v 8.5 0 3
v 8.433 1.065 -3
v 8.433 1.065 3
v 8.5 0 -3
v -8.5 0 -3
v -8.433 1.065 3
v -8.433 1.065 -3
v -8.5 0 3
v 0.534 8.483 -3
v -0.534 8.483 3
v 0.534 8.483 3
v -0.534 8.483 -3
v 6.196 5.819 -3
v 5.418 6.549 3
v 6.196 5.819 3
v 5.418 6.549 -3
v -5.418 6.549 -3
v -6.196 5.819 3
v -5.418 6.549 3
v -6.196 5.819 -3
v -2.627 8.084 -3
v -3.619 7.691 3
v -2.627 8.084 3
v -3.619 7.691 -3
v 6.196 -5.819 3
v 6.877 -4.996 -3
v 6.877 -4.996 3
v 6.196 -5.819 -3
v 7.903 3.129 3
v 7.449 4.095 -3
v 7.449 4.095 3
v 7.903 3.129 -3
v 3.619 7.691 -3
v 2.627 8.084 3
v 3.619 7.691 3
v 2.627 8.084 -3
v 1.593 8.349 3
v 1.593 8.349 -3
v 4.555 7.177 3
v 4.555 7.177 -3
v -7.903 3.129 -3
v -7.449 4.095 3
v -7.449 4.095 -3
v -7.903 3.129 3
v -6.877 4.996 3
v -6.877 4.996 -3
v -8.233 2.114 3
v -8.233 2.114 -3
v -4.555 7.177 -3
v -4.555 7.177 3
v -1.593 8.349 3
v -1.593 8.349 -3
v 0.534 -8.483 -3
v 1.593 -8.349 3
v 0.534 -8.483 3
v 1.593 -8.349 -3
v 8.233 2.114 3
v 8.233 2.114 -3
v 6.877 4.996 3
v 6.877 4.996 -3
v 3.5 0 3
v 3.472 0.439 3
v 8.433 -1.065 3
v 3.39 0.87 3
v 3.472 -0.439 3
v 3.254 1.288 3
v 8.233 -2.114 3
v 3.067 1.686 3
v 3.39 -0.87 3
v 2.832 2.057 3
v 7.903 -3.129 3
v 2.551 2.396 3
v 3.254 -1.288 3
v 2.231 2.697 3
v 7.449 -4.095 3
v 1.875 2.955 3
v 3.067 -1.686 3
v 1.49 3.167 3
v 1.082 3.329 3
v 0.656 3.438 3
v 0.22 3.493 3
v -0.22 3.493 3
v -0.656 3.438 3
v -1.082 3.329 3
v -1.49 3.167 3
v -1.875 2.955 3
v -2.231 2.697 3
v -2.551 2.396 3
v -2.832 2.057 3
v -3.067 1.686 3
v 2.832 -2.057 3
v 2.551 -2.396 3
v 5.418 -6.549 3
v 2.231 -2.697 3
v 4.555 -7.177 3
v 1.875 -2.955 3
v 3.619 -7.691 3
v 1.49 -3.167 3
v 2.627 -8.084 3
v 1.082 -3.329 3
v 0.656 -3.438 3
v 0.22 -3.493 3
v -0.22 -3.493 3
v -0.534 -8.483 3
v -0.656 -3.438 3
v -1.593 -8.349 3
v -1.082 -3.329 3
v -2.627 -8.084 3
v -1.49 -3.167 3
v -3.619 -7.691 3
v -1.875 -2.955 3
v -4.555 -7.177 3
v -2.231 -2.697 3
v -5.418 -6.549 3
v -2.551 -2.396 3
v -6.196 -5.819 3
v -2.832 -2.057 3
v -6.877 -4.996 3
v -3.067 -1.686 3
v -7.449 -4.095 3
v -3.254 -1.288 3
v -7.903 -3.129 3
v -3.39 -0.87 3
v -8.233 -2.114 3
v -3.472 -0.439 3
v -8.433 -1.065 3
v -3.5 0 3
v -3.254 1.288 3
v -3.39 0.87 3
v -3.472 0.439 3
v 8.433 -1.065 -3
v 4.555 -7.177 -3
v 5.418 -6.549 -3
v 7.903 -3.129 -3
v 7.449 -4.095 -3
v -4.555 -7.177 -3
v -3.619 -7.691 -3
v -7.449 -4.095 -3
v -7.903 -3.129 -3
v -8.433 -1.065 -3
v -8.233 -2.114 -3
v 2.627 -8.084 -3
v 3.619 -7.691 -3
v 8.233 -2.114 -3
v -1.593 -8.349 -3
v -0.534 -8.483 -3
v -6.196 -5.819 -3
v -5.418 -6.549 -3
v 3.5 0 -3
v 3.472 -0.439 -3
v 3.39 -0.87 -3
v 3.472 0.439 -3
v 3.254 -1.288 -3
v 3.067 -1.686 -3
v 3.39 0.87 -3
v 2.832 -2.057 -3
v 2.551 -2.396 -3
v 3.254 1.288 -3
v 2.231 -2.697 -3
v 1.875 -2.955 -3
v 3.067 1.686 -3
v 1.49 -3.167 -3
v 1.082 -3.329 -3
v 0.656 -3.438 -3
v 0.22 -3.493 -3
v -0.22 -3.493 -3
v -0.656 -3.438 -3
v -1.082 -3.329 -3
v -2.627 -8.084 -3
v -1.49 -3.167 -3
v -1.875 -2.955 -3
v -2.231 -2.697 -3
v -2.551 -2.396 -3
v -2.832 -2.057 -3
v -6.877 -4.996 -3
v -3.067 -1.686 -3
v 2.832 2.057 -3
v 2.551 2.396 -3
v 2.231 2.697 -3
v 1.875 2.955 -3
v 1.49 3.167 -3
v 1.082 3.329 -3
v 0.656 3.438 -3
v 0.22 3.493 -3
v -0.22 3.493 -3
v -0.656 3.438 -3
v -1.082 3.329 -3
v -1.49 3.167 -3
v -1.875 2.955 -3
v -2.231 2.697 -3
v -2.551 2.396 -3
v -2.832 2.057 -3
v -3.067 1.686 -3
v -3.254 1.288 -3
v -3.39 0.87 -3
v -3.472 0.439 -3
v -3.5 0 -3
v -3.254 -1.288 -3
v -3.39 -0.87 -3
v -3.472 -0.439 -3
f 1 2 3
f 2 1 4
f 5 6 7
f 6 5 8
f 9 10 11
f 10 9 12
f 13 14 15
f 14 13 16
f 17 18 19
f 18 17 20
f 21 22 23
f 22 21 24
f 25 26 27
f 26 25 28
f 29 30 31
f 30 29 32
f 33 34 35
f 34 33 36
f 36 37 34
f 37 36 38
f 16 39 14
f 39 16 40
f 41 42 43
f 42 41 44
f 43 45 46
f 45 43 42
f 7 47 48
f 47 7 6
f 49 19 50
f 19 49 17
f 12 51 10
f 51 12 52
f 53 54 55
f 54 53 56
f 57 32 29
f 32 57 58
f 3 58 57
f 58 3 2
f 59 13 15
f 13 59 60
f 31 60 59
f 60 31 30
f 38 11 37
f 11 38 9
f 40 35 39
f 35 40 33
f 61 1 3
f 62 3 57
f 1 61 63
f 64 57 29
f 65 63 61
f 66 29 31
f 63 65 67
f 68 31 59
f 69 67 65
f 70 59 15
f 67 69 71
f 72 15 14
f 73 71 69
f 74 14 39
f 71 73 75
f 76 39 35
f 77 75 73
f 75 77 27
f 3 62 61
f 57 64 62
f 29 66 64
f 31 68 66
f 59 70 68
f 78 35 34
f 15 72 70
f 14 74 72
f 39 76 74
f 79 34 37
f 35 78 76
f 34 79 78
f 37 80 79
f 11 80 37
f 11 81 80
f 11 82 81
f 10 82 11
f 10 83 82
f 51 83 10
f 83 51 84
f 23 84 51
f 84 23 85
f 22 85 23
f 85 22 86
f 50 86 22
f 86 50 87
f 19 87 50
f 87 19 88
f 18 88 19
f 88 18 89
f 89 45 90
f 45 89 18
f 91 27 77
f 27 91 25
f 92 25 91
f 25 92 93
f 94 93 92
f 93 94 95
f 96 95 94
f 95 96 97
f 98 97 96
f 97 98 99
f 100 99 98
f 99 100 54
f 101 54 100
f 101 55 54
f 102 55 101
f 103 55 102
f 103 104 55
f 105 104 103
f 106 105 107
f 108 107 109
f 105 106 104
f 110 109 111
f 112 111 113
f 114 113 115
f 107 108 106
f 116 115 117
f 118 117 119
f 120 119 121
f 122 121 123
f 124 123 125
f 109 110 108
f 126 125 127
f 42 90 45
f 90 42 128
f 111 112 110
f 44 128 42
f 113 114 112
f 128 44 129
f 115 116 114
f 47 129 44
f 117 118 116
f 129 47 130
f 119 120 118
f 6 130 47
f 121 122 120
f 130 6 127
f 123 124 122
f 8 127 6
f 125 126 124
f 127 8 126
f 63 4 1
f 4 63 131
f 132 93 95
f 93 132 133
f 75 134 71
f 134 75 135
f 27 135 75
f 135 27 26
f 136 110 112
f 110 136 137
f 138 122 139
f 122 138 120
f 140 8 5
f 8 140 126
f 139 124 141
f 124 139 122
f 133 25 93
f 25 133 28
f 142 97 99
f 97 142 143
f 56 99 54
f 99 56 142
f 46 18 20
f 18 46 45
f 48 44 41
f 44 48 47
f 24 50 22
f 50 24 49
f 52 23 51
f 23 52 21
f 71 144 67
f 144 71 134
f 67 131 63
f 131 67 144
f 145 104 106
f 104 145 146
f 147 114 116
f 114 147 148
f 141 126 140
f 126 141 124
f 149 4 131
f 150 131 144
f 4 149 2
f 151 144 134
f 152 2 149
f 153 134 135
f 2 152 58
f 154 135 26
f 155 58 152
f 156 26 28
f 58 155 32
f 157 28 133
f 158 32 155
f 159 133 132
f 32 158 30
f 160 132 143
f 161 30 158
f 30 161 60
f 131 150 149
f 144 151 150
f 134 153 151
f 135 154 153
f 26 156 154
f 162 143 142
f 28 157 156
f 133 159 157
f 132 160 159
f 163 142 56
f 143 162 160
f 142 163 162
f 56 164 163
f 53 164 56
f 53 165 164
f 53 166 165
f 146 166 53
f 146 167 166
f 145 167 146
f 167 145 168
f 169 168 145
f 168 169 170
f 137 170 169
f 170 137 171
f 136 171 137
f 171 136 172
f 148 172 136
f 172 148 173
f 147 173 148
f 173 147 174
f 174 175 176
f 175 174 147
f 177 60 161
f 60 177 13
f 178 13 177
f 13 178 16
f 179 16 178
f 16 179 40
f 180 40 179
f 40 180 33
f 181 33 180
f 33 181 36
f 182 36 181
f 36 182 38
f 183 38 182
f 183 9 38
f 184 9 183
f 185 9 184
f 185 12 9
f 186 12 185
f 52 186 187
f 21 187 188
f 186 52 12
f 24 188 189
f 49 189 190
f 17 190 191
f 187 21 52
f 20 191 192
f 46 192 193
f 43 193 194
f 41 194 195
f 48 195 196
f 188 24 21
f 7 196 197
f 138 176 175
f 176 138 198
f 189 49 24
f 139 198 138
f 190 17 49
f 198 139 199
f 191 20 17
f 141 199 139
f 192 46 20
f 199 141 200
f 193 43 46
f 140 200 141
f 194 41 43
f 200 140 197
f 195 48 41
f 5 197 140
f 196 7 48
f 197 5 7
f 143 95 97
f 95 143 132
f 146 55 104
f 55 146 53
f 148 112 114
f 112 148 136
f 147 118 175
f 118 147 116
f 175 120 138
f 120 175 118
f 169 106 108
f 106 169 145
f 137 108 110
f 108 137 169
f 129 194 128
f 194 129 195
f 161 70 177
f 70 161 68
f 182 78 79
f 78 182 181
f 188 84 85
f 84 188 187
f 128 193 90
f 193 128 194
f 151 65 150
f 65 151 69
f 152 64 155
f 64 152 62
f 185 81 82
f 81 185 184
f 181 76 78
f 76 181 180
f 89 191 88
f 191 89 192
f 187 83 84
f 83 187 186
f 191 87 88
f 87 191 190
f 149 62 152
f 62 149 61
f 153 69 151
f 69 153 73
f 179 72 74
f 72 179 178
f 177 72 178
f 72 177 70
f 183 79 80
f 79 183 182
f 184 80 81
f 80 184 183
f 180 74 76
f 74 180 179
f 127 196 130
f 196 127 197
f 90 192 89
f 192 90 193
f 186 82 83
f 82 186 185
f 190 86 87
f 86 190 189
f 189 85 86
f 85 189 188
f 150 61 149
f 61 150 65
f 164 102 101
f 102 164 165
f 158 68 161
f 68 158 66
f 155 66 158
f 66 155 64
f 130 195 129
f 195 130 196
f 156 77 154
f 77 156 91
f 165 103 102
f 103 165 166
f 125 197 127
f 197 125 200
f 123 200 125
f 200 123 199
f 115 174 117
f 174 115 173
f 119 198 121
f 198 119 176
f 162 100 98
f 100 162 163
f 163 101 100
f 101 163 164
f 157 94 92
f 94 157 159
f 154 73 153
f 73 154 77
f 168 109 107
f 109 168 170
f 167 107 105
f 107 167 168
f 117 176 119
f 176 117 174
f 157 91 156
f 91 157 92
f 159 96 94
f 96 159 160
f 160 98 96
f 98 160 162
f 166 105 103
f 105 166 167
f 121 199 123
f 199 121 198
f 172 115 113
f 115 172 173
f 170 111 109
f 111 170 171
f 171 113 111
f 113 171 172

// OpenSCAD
$fn = 50;


difference() {
	union() {
		translate(v = [0, 0, -3.0000000000]) {
			cylinder(h = 6, r = 8.5000000000);
		}
	}
	union() {
		translate(v = [0, 0, -100.0000000000]) {
			cylinder(h = 200, r = 3.5000000000);
		}
	}
}
